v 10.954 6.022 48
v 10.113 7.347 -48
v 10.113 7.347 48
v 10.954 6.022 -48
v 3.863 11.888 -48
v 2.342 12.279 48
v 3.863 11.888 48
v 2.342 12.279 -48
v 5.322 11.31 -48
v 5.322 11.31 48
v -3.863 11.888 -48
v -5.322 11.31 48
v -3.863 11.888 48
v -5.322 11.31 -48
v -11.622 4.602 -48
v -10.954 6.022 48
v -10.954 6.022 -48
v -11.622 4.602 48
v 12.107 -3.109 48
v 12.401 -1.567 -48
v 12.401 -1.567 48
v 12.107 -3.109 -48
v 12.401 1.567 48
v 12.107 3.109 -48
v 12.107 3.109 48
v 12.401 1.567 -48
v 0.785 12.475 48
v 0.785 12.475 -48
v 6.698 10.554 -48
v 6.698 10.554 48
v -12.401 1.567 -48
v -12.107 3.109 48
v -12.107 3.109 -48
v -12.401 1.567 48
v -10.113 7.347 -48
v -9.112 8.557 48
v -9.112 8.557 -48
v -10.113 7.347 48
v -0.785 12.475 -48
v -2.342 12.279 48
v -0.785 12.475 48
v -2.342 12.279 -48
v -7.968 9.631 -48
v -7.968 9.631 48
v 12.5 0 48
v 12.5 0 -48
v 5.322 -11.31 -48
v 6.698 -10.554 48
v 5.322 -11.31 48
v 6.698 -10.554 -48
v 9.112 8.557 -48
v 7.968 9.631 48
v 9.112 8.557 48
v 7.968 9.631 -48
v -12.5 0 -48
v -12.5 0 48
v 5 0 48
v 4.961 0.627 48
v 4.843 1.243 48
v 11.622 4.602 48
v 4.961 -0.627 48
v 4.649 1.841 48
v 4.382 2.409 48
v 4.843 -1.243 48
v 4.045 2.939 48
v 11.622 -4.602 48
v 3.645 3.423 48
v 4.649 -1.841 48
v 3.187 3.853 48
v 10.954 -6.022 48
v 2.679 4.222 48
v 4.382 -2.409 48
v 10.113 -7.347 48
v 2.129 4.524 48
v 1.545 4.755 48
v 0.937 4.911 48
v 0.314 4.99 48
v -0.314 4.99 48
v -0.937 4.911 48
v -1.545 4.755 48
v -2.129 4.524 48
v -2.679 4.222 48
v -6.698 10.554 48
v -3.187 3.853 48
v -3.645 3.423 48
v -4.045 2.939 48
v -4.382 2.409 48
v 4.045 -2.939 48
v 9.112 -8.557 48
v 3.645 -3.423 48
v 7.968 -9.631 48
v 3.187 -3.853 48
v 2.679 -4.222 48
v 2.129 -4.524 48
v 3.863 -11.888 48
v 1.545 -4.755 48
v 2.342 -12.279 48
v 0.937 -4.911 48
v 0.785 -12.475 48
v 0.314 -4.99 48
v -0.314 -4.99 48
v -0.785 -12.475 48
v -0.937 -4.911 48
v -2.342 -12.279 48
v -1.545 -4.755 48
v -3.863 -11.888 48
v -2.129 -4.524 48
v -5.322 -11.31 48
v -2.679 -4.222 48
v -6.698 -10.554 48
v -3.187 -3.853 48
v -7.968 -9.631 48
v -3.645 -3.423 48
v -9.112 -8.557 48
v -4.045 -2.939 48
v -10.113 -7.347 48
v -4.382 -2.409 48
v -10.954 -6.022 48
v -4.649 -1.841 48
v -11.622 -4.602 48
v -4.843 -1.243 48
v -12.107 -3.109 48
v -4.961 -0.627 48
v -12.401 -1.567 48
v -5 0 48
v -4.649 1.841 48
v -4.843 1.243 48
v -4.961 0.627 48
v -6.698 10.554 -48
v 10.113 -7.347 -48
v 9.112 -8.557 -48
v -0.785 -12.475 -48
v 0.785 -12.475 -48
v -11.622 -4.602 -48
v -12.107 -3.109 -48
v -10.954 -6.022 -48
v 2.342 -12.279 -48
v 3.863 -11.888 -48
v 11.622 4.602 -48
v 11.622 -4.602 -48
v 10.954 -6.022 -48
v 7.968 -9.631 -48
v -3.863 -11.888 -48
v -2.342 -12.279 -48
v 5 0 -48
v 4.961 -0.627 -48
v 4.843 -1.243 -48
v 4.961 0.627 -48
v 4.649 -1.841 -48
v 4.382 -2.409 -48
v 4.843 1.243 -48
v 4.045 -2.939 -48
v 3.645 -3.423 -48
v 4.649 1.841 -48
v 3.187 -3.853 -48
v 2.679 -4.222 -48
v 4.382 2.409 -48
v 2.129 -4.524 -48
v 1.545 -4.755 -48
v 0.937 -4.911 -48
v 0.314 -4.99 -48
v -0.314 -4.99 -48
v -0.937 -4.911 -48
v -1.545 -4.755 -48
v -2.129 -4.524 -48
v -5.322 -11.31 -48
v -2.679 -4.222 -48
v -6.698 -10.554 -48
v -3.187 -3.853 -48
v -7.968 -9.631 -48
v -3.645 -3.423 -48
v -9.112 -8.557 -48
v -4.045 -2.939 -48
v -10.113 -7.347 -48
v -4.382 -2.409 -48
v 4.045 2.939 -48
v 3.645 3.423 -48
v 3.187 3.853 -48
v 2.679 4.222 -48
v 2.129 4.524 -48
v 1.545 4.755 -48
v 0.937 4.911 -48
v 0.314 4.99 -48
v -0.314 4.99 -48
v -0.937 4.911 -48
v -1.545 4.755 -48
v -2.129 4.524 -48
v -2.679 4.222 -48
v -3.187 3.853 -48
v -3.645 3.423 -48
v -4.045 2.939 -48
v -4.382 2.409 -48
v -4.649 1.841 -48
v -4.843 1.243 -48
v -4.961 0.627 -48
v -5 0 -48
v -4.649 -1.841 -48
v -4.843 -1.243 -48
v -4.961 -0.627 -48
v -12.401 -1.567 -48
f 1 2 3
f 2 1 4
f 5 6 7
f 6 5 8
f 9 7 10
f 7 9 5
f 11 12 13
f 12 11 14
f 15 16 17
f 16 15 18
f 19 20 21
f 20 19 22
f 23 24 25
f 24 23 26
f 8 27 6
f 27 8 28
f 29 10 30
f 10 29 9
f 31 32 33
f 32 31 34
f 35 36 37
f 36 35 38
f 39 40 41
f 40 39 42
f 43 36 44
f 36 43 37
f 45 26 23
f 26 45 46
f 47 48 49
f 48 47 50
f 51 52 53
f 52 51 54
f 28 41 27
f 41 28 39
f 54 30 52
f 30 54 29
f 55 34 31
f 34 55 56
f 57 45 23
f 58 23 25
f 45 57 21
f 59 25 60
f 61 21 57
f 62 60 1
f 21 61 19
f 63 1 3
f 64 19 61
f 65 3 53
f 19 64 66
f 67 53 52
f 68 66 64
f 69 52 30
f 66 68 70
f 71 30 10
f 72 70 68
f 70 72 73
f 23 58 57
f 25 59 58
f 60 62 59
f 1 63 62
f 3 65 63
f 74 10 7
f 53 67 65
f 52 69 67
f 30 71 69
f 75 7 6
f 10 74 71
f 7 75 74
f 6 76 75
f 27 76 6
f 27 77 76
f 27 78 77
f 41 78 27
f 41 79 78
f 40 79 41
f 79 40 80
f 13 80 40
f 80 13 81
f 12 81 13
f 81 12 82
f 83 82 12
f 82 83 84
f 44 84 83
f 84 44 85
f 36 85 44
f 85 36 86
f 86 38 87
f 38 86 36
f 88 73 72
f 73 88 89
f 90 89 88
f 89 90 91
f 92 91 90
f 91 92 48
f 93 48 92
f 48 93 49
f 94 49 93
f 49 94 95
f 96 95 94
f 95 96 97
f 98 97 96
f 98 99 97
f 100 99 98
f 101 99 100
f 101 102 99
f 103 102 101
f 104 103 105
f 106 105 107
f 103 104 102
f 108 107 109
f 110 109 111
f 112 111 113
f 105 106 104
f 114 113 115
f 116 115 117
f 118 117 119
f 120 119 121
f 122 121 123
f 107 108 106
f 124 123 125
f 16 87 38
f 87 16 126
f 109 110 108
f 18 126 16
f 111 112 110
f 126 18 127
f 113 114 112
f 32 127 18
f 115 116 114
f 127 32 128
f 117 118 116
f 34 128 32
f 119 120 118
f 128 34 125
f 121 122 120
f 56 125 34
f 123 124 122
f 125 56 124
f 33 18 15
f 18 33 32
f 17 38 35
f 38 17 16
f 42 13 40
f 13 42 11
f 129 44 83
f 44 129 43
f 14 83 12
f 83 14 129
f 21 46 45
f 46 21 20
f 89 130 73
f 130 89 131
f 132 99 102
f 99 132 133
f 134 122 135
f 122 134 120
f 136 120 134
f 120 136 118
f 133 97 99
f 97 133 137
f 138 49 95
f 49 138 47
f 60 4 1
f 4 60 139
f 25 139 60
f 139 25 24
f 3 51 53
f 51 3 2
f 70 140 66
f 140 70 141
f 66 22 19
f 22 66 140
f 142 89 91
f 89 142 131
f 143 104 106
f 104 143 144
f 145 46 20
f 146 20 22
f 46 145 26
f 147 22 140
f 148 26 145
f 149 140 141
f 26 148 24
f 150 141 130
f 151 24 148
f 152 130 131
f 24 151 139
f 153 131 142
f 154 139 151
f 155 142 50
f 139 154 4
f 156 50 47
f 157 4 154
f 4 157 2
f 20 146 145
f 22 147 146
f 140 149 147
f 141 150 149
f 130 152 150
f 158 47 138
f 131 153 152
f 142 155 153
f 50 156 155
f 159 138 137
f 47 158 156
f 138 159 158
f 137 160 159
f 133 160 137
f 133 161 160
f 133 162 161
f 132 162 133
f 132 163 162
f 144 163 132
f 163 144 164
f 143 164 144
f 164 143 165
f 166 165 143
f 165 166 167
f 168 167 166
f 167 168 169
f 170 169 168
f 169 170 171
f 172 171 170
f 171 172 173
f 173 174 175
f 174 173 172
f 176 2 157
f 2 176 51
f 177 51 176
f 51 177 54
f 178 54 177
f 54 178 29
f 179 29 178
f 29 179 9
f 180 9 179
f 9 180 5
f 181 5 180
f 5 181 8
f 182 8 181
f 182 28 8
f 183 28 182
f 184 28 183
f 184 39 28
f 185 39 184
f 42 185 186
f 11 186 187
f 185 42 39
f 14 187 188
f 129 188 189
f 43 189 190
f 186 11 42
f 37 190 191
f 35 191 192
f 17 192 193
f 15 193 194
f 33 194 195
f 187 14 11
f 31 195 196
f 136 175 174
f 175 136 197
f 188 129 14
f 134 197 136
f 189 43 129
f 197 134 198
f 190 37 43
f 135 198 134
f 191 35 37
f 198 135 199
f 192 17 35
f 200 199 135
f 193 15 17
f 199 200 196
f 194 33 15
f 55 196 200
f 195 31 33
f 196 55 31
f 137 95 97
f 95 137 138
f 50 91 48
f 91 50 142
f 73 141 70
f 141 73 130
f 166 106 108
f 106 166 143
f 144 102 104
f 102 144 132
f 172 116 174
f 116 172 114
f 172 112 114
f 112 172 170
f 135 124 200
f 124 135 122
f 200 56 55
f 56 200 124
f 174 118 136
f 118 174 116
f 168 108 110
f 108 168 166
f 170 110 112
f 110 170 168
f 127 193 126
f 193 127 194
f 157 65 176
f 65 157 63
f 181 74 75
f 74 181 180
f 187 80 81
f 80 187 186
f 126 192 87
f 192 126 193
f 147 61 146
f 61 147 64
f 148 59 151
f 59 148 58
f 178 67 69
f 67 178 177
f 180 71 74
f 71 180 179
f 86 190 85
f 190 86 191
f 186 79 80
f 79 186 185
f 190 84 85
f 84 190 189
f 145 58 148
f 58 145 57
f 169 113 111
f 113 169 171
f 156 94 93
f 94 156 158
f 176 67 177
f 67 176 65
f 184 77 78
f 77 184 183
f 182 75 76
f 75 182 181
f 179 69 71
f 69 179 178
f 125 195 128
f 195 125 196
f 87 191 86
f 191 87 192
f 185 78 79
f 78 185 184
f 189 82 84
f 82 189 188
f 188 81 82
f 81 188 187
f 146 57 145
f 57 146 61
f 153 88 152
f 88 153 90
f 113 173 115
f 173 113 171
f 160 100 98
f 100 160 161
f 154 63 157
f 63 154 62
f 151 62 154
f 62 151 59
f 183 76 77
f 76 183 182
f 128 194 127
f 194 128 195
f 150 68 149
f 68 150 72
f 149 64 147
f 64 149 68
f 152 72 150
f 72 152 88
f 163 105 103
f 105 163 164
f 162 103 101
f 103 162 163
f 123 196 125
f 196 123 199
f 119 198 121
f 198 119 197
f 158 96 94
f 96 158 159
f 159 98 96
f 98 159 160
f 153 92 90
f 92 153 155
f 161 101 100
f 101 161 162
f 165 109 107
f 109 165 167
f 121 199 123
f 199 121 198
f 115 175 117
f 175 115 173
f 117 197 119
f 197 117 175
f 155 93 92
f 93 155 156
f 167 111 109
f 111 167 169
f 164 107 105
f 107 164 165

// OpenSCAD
$fn = 50;


difference() {
	union() {
		translate(v = [0, 0, -48.0000000000]) {
			cylinder(h = 96, r = 12.5000000000);
		}
	}
	union() {
		translate(v = [0, 0, -100.0000000000]) {
			cylinder(h = 200, r = 5);
		}
	}
}
